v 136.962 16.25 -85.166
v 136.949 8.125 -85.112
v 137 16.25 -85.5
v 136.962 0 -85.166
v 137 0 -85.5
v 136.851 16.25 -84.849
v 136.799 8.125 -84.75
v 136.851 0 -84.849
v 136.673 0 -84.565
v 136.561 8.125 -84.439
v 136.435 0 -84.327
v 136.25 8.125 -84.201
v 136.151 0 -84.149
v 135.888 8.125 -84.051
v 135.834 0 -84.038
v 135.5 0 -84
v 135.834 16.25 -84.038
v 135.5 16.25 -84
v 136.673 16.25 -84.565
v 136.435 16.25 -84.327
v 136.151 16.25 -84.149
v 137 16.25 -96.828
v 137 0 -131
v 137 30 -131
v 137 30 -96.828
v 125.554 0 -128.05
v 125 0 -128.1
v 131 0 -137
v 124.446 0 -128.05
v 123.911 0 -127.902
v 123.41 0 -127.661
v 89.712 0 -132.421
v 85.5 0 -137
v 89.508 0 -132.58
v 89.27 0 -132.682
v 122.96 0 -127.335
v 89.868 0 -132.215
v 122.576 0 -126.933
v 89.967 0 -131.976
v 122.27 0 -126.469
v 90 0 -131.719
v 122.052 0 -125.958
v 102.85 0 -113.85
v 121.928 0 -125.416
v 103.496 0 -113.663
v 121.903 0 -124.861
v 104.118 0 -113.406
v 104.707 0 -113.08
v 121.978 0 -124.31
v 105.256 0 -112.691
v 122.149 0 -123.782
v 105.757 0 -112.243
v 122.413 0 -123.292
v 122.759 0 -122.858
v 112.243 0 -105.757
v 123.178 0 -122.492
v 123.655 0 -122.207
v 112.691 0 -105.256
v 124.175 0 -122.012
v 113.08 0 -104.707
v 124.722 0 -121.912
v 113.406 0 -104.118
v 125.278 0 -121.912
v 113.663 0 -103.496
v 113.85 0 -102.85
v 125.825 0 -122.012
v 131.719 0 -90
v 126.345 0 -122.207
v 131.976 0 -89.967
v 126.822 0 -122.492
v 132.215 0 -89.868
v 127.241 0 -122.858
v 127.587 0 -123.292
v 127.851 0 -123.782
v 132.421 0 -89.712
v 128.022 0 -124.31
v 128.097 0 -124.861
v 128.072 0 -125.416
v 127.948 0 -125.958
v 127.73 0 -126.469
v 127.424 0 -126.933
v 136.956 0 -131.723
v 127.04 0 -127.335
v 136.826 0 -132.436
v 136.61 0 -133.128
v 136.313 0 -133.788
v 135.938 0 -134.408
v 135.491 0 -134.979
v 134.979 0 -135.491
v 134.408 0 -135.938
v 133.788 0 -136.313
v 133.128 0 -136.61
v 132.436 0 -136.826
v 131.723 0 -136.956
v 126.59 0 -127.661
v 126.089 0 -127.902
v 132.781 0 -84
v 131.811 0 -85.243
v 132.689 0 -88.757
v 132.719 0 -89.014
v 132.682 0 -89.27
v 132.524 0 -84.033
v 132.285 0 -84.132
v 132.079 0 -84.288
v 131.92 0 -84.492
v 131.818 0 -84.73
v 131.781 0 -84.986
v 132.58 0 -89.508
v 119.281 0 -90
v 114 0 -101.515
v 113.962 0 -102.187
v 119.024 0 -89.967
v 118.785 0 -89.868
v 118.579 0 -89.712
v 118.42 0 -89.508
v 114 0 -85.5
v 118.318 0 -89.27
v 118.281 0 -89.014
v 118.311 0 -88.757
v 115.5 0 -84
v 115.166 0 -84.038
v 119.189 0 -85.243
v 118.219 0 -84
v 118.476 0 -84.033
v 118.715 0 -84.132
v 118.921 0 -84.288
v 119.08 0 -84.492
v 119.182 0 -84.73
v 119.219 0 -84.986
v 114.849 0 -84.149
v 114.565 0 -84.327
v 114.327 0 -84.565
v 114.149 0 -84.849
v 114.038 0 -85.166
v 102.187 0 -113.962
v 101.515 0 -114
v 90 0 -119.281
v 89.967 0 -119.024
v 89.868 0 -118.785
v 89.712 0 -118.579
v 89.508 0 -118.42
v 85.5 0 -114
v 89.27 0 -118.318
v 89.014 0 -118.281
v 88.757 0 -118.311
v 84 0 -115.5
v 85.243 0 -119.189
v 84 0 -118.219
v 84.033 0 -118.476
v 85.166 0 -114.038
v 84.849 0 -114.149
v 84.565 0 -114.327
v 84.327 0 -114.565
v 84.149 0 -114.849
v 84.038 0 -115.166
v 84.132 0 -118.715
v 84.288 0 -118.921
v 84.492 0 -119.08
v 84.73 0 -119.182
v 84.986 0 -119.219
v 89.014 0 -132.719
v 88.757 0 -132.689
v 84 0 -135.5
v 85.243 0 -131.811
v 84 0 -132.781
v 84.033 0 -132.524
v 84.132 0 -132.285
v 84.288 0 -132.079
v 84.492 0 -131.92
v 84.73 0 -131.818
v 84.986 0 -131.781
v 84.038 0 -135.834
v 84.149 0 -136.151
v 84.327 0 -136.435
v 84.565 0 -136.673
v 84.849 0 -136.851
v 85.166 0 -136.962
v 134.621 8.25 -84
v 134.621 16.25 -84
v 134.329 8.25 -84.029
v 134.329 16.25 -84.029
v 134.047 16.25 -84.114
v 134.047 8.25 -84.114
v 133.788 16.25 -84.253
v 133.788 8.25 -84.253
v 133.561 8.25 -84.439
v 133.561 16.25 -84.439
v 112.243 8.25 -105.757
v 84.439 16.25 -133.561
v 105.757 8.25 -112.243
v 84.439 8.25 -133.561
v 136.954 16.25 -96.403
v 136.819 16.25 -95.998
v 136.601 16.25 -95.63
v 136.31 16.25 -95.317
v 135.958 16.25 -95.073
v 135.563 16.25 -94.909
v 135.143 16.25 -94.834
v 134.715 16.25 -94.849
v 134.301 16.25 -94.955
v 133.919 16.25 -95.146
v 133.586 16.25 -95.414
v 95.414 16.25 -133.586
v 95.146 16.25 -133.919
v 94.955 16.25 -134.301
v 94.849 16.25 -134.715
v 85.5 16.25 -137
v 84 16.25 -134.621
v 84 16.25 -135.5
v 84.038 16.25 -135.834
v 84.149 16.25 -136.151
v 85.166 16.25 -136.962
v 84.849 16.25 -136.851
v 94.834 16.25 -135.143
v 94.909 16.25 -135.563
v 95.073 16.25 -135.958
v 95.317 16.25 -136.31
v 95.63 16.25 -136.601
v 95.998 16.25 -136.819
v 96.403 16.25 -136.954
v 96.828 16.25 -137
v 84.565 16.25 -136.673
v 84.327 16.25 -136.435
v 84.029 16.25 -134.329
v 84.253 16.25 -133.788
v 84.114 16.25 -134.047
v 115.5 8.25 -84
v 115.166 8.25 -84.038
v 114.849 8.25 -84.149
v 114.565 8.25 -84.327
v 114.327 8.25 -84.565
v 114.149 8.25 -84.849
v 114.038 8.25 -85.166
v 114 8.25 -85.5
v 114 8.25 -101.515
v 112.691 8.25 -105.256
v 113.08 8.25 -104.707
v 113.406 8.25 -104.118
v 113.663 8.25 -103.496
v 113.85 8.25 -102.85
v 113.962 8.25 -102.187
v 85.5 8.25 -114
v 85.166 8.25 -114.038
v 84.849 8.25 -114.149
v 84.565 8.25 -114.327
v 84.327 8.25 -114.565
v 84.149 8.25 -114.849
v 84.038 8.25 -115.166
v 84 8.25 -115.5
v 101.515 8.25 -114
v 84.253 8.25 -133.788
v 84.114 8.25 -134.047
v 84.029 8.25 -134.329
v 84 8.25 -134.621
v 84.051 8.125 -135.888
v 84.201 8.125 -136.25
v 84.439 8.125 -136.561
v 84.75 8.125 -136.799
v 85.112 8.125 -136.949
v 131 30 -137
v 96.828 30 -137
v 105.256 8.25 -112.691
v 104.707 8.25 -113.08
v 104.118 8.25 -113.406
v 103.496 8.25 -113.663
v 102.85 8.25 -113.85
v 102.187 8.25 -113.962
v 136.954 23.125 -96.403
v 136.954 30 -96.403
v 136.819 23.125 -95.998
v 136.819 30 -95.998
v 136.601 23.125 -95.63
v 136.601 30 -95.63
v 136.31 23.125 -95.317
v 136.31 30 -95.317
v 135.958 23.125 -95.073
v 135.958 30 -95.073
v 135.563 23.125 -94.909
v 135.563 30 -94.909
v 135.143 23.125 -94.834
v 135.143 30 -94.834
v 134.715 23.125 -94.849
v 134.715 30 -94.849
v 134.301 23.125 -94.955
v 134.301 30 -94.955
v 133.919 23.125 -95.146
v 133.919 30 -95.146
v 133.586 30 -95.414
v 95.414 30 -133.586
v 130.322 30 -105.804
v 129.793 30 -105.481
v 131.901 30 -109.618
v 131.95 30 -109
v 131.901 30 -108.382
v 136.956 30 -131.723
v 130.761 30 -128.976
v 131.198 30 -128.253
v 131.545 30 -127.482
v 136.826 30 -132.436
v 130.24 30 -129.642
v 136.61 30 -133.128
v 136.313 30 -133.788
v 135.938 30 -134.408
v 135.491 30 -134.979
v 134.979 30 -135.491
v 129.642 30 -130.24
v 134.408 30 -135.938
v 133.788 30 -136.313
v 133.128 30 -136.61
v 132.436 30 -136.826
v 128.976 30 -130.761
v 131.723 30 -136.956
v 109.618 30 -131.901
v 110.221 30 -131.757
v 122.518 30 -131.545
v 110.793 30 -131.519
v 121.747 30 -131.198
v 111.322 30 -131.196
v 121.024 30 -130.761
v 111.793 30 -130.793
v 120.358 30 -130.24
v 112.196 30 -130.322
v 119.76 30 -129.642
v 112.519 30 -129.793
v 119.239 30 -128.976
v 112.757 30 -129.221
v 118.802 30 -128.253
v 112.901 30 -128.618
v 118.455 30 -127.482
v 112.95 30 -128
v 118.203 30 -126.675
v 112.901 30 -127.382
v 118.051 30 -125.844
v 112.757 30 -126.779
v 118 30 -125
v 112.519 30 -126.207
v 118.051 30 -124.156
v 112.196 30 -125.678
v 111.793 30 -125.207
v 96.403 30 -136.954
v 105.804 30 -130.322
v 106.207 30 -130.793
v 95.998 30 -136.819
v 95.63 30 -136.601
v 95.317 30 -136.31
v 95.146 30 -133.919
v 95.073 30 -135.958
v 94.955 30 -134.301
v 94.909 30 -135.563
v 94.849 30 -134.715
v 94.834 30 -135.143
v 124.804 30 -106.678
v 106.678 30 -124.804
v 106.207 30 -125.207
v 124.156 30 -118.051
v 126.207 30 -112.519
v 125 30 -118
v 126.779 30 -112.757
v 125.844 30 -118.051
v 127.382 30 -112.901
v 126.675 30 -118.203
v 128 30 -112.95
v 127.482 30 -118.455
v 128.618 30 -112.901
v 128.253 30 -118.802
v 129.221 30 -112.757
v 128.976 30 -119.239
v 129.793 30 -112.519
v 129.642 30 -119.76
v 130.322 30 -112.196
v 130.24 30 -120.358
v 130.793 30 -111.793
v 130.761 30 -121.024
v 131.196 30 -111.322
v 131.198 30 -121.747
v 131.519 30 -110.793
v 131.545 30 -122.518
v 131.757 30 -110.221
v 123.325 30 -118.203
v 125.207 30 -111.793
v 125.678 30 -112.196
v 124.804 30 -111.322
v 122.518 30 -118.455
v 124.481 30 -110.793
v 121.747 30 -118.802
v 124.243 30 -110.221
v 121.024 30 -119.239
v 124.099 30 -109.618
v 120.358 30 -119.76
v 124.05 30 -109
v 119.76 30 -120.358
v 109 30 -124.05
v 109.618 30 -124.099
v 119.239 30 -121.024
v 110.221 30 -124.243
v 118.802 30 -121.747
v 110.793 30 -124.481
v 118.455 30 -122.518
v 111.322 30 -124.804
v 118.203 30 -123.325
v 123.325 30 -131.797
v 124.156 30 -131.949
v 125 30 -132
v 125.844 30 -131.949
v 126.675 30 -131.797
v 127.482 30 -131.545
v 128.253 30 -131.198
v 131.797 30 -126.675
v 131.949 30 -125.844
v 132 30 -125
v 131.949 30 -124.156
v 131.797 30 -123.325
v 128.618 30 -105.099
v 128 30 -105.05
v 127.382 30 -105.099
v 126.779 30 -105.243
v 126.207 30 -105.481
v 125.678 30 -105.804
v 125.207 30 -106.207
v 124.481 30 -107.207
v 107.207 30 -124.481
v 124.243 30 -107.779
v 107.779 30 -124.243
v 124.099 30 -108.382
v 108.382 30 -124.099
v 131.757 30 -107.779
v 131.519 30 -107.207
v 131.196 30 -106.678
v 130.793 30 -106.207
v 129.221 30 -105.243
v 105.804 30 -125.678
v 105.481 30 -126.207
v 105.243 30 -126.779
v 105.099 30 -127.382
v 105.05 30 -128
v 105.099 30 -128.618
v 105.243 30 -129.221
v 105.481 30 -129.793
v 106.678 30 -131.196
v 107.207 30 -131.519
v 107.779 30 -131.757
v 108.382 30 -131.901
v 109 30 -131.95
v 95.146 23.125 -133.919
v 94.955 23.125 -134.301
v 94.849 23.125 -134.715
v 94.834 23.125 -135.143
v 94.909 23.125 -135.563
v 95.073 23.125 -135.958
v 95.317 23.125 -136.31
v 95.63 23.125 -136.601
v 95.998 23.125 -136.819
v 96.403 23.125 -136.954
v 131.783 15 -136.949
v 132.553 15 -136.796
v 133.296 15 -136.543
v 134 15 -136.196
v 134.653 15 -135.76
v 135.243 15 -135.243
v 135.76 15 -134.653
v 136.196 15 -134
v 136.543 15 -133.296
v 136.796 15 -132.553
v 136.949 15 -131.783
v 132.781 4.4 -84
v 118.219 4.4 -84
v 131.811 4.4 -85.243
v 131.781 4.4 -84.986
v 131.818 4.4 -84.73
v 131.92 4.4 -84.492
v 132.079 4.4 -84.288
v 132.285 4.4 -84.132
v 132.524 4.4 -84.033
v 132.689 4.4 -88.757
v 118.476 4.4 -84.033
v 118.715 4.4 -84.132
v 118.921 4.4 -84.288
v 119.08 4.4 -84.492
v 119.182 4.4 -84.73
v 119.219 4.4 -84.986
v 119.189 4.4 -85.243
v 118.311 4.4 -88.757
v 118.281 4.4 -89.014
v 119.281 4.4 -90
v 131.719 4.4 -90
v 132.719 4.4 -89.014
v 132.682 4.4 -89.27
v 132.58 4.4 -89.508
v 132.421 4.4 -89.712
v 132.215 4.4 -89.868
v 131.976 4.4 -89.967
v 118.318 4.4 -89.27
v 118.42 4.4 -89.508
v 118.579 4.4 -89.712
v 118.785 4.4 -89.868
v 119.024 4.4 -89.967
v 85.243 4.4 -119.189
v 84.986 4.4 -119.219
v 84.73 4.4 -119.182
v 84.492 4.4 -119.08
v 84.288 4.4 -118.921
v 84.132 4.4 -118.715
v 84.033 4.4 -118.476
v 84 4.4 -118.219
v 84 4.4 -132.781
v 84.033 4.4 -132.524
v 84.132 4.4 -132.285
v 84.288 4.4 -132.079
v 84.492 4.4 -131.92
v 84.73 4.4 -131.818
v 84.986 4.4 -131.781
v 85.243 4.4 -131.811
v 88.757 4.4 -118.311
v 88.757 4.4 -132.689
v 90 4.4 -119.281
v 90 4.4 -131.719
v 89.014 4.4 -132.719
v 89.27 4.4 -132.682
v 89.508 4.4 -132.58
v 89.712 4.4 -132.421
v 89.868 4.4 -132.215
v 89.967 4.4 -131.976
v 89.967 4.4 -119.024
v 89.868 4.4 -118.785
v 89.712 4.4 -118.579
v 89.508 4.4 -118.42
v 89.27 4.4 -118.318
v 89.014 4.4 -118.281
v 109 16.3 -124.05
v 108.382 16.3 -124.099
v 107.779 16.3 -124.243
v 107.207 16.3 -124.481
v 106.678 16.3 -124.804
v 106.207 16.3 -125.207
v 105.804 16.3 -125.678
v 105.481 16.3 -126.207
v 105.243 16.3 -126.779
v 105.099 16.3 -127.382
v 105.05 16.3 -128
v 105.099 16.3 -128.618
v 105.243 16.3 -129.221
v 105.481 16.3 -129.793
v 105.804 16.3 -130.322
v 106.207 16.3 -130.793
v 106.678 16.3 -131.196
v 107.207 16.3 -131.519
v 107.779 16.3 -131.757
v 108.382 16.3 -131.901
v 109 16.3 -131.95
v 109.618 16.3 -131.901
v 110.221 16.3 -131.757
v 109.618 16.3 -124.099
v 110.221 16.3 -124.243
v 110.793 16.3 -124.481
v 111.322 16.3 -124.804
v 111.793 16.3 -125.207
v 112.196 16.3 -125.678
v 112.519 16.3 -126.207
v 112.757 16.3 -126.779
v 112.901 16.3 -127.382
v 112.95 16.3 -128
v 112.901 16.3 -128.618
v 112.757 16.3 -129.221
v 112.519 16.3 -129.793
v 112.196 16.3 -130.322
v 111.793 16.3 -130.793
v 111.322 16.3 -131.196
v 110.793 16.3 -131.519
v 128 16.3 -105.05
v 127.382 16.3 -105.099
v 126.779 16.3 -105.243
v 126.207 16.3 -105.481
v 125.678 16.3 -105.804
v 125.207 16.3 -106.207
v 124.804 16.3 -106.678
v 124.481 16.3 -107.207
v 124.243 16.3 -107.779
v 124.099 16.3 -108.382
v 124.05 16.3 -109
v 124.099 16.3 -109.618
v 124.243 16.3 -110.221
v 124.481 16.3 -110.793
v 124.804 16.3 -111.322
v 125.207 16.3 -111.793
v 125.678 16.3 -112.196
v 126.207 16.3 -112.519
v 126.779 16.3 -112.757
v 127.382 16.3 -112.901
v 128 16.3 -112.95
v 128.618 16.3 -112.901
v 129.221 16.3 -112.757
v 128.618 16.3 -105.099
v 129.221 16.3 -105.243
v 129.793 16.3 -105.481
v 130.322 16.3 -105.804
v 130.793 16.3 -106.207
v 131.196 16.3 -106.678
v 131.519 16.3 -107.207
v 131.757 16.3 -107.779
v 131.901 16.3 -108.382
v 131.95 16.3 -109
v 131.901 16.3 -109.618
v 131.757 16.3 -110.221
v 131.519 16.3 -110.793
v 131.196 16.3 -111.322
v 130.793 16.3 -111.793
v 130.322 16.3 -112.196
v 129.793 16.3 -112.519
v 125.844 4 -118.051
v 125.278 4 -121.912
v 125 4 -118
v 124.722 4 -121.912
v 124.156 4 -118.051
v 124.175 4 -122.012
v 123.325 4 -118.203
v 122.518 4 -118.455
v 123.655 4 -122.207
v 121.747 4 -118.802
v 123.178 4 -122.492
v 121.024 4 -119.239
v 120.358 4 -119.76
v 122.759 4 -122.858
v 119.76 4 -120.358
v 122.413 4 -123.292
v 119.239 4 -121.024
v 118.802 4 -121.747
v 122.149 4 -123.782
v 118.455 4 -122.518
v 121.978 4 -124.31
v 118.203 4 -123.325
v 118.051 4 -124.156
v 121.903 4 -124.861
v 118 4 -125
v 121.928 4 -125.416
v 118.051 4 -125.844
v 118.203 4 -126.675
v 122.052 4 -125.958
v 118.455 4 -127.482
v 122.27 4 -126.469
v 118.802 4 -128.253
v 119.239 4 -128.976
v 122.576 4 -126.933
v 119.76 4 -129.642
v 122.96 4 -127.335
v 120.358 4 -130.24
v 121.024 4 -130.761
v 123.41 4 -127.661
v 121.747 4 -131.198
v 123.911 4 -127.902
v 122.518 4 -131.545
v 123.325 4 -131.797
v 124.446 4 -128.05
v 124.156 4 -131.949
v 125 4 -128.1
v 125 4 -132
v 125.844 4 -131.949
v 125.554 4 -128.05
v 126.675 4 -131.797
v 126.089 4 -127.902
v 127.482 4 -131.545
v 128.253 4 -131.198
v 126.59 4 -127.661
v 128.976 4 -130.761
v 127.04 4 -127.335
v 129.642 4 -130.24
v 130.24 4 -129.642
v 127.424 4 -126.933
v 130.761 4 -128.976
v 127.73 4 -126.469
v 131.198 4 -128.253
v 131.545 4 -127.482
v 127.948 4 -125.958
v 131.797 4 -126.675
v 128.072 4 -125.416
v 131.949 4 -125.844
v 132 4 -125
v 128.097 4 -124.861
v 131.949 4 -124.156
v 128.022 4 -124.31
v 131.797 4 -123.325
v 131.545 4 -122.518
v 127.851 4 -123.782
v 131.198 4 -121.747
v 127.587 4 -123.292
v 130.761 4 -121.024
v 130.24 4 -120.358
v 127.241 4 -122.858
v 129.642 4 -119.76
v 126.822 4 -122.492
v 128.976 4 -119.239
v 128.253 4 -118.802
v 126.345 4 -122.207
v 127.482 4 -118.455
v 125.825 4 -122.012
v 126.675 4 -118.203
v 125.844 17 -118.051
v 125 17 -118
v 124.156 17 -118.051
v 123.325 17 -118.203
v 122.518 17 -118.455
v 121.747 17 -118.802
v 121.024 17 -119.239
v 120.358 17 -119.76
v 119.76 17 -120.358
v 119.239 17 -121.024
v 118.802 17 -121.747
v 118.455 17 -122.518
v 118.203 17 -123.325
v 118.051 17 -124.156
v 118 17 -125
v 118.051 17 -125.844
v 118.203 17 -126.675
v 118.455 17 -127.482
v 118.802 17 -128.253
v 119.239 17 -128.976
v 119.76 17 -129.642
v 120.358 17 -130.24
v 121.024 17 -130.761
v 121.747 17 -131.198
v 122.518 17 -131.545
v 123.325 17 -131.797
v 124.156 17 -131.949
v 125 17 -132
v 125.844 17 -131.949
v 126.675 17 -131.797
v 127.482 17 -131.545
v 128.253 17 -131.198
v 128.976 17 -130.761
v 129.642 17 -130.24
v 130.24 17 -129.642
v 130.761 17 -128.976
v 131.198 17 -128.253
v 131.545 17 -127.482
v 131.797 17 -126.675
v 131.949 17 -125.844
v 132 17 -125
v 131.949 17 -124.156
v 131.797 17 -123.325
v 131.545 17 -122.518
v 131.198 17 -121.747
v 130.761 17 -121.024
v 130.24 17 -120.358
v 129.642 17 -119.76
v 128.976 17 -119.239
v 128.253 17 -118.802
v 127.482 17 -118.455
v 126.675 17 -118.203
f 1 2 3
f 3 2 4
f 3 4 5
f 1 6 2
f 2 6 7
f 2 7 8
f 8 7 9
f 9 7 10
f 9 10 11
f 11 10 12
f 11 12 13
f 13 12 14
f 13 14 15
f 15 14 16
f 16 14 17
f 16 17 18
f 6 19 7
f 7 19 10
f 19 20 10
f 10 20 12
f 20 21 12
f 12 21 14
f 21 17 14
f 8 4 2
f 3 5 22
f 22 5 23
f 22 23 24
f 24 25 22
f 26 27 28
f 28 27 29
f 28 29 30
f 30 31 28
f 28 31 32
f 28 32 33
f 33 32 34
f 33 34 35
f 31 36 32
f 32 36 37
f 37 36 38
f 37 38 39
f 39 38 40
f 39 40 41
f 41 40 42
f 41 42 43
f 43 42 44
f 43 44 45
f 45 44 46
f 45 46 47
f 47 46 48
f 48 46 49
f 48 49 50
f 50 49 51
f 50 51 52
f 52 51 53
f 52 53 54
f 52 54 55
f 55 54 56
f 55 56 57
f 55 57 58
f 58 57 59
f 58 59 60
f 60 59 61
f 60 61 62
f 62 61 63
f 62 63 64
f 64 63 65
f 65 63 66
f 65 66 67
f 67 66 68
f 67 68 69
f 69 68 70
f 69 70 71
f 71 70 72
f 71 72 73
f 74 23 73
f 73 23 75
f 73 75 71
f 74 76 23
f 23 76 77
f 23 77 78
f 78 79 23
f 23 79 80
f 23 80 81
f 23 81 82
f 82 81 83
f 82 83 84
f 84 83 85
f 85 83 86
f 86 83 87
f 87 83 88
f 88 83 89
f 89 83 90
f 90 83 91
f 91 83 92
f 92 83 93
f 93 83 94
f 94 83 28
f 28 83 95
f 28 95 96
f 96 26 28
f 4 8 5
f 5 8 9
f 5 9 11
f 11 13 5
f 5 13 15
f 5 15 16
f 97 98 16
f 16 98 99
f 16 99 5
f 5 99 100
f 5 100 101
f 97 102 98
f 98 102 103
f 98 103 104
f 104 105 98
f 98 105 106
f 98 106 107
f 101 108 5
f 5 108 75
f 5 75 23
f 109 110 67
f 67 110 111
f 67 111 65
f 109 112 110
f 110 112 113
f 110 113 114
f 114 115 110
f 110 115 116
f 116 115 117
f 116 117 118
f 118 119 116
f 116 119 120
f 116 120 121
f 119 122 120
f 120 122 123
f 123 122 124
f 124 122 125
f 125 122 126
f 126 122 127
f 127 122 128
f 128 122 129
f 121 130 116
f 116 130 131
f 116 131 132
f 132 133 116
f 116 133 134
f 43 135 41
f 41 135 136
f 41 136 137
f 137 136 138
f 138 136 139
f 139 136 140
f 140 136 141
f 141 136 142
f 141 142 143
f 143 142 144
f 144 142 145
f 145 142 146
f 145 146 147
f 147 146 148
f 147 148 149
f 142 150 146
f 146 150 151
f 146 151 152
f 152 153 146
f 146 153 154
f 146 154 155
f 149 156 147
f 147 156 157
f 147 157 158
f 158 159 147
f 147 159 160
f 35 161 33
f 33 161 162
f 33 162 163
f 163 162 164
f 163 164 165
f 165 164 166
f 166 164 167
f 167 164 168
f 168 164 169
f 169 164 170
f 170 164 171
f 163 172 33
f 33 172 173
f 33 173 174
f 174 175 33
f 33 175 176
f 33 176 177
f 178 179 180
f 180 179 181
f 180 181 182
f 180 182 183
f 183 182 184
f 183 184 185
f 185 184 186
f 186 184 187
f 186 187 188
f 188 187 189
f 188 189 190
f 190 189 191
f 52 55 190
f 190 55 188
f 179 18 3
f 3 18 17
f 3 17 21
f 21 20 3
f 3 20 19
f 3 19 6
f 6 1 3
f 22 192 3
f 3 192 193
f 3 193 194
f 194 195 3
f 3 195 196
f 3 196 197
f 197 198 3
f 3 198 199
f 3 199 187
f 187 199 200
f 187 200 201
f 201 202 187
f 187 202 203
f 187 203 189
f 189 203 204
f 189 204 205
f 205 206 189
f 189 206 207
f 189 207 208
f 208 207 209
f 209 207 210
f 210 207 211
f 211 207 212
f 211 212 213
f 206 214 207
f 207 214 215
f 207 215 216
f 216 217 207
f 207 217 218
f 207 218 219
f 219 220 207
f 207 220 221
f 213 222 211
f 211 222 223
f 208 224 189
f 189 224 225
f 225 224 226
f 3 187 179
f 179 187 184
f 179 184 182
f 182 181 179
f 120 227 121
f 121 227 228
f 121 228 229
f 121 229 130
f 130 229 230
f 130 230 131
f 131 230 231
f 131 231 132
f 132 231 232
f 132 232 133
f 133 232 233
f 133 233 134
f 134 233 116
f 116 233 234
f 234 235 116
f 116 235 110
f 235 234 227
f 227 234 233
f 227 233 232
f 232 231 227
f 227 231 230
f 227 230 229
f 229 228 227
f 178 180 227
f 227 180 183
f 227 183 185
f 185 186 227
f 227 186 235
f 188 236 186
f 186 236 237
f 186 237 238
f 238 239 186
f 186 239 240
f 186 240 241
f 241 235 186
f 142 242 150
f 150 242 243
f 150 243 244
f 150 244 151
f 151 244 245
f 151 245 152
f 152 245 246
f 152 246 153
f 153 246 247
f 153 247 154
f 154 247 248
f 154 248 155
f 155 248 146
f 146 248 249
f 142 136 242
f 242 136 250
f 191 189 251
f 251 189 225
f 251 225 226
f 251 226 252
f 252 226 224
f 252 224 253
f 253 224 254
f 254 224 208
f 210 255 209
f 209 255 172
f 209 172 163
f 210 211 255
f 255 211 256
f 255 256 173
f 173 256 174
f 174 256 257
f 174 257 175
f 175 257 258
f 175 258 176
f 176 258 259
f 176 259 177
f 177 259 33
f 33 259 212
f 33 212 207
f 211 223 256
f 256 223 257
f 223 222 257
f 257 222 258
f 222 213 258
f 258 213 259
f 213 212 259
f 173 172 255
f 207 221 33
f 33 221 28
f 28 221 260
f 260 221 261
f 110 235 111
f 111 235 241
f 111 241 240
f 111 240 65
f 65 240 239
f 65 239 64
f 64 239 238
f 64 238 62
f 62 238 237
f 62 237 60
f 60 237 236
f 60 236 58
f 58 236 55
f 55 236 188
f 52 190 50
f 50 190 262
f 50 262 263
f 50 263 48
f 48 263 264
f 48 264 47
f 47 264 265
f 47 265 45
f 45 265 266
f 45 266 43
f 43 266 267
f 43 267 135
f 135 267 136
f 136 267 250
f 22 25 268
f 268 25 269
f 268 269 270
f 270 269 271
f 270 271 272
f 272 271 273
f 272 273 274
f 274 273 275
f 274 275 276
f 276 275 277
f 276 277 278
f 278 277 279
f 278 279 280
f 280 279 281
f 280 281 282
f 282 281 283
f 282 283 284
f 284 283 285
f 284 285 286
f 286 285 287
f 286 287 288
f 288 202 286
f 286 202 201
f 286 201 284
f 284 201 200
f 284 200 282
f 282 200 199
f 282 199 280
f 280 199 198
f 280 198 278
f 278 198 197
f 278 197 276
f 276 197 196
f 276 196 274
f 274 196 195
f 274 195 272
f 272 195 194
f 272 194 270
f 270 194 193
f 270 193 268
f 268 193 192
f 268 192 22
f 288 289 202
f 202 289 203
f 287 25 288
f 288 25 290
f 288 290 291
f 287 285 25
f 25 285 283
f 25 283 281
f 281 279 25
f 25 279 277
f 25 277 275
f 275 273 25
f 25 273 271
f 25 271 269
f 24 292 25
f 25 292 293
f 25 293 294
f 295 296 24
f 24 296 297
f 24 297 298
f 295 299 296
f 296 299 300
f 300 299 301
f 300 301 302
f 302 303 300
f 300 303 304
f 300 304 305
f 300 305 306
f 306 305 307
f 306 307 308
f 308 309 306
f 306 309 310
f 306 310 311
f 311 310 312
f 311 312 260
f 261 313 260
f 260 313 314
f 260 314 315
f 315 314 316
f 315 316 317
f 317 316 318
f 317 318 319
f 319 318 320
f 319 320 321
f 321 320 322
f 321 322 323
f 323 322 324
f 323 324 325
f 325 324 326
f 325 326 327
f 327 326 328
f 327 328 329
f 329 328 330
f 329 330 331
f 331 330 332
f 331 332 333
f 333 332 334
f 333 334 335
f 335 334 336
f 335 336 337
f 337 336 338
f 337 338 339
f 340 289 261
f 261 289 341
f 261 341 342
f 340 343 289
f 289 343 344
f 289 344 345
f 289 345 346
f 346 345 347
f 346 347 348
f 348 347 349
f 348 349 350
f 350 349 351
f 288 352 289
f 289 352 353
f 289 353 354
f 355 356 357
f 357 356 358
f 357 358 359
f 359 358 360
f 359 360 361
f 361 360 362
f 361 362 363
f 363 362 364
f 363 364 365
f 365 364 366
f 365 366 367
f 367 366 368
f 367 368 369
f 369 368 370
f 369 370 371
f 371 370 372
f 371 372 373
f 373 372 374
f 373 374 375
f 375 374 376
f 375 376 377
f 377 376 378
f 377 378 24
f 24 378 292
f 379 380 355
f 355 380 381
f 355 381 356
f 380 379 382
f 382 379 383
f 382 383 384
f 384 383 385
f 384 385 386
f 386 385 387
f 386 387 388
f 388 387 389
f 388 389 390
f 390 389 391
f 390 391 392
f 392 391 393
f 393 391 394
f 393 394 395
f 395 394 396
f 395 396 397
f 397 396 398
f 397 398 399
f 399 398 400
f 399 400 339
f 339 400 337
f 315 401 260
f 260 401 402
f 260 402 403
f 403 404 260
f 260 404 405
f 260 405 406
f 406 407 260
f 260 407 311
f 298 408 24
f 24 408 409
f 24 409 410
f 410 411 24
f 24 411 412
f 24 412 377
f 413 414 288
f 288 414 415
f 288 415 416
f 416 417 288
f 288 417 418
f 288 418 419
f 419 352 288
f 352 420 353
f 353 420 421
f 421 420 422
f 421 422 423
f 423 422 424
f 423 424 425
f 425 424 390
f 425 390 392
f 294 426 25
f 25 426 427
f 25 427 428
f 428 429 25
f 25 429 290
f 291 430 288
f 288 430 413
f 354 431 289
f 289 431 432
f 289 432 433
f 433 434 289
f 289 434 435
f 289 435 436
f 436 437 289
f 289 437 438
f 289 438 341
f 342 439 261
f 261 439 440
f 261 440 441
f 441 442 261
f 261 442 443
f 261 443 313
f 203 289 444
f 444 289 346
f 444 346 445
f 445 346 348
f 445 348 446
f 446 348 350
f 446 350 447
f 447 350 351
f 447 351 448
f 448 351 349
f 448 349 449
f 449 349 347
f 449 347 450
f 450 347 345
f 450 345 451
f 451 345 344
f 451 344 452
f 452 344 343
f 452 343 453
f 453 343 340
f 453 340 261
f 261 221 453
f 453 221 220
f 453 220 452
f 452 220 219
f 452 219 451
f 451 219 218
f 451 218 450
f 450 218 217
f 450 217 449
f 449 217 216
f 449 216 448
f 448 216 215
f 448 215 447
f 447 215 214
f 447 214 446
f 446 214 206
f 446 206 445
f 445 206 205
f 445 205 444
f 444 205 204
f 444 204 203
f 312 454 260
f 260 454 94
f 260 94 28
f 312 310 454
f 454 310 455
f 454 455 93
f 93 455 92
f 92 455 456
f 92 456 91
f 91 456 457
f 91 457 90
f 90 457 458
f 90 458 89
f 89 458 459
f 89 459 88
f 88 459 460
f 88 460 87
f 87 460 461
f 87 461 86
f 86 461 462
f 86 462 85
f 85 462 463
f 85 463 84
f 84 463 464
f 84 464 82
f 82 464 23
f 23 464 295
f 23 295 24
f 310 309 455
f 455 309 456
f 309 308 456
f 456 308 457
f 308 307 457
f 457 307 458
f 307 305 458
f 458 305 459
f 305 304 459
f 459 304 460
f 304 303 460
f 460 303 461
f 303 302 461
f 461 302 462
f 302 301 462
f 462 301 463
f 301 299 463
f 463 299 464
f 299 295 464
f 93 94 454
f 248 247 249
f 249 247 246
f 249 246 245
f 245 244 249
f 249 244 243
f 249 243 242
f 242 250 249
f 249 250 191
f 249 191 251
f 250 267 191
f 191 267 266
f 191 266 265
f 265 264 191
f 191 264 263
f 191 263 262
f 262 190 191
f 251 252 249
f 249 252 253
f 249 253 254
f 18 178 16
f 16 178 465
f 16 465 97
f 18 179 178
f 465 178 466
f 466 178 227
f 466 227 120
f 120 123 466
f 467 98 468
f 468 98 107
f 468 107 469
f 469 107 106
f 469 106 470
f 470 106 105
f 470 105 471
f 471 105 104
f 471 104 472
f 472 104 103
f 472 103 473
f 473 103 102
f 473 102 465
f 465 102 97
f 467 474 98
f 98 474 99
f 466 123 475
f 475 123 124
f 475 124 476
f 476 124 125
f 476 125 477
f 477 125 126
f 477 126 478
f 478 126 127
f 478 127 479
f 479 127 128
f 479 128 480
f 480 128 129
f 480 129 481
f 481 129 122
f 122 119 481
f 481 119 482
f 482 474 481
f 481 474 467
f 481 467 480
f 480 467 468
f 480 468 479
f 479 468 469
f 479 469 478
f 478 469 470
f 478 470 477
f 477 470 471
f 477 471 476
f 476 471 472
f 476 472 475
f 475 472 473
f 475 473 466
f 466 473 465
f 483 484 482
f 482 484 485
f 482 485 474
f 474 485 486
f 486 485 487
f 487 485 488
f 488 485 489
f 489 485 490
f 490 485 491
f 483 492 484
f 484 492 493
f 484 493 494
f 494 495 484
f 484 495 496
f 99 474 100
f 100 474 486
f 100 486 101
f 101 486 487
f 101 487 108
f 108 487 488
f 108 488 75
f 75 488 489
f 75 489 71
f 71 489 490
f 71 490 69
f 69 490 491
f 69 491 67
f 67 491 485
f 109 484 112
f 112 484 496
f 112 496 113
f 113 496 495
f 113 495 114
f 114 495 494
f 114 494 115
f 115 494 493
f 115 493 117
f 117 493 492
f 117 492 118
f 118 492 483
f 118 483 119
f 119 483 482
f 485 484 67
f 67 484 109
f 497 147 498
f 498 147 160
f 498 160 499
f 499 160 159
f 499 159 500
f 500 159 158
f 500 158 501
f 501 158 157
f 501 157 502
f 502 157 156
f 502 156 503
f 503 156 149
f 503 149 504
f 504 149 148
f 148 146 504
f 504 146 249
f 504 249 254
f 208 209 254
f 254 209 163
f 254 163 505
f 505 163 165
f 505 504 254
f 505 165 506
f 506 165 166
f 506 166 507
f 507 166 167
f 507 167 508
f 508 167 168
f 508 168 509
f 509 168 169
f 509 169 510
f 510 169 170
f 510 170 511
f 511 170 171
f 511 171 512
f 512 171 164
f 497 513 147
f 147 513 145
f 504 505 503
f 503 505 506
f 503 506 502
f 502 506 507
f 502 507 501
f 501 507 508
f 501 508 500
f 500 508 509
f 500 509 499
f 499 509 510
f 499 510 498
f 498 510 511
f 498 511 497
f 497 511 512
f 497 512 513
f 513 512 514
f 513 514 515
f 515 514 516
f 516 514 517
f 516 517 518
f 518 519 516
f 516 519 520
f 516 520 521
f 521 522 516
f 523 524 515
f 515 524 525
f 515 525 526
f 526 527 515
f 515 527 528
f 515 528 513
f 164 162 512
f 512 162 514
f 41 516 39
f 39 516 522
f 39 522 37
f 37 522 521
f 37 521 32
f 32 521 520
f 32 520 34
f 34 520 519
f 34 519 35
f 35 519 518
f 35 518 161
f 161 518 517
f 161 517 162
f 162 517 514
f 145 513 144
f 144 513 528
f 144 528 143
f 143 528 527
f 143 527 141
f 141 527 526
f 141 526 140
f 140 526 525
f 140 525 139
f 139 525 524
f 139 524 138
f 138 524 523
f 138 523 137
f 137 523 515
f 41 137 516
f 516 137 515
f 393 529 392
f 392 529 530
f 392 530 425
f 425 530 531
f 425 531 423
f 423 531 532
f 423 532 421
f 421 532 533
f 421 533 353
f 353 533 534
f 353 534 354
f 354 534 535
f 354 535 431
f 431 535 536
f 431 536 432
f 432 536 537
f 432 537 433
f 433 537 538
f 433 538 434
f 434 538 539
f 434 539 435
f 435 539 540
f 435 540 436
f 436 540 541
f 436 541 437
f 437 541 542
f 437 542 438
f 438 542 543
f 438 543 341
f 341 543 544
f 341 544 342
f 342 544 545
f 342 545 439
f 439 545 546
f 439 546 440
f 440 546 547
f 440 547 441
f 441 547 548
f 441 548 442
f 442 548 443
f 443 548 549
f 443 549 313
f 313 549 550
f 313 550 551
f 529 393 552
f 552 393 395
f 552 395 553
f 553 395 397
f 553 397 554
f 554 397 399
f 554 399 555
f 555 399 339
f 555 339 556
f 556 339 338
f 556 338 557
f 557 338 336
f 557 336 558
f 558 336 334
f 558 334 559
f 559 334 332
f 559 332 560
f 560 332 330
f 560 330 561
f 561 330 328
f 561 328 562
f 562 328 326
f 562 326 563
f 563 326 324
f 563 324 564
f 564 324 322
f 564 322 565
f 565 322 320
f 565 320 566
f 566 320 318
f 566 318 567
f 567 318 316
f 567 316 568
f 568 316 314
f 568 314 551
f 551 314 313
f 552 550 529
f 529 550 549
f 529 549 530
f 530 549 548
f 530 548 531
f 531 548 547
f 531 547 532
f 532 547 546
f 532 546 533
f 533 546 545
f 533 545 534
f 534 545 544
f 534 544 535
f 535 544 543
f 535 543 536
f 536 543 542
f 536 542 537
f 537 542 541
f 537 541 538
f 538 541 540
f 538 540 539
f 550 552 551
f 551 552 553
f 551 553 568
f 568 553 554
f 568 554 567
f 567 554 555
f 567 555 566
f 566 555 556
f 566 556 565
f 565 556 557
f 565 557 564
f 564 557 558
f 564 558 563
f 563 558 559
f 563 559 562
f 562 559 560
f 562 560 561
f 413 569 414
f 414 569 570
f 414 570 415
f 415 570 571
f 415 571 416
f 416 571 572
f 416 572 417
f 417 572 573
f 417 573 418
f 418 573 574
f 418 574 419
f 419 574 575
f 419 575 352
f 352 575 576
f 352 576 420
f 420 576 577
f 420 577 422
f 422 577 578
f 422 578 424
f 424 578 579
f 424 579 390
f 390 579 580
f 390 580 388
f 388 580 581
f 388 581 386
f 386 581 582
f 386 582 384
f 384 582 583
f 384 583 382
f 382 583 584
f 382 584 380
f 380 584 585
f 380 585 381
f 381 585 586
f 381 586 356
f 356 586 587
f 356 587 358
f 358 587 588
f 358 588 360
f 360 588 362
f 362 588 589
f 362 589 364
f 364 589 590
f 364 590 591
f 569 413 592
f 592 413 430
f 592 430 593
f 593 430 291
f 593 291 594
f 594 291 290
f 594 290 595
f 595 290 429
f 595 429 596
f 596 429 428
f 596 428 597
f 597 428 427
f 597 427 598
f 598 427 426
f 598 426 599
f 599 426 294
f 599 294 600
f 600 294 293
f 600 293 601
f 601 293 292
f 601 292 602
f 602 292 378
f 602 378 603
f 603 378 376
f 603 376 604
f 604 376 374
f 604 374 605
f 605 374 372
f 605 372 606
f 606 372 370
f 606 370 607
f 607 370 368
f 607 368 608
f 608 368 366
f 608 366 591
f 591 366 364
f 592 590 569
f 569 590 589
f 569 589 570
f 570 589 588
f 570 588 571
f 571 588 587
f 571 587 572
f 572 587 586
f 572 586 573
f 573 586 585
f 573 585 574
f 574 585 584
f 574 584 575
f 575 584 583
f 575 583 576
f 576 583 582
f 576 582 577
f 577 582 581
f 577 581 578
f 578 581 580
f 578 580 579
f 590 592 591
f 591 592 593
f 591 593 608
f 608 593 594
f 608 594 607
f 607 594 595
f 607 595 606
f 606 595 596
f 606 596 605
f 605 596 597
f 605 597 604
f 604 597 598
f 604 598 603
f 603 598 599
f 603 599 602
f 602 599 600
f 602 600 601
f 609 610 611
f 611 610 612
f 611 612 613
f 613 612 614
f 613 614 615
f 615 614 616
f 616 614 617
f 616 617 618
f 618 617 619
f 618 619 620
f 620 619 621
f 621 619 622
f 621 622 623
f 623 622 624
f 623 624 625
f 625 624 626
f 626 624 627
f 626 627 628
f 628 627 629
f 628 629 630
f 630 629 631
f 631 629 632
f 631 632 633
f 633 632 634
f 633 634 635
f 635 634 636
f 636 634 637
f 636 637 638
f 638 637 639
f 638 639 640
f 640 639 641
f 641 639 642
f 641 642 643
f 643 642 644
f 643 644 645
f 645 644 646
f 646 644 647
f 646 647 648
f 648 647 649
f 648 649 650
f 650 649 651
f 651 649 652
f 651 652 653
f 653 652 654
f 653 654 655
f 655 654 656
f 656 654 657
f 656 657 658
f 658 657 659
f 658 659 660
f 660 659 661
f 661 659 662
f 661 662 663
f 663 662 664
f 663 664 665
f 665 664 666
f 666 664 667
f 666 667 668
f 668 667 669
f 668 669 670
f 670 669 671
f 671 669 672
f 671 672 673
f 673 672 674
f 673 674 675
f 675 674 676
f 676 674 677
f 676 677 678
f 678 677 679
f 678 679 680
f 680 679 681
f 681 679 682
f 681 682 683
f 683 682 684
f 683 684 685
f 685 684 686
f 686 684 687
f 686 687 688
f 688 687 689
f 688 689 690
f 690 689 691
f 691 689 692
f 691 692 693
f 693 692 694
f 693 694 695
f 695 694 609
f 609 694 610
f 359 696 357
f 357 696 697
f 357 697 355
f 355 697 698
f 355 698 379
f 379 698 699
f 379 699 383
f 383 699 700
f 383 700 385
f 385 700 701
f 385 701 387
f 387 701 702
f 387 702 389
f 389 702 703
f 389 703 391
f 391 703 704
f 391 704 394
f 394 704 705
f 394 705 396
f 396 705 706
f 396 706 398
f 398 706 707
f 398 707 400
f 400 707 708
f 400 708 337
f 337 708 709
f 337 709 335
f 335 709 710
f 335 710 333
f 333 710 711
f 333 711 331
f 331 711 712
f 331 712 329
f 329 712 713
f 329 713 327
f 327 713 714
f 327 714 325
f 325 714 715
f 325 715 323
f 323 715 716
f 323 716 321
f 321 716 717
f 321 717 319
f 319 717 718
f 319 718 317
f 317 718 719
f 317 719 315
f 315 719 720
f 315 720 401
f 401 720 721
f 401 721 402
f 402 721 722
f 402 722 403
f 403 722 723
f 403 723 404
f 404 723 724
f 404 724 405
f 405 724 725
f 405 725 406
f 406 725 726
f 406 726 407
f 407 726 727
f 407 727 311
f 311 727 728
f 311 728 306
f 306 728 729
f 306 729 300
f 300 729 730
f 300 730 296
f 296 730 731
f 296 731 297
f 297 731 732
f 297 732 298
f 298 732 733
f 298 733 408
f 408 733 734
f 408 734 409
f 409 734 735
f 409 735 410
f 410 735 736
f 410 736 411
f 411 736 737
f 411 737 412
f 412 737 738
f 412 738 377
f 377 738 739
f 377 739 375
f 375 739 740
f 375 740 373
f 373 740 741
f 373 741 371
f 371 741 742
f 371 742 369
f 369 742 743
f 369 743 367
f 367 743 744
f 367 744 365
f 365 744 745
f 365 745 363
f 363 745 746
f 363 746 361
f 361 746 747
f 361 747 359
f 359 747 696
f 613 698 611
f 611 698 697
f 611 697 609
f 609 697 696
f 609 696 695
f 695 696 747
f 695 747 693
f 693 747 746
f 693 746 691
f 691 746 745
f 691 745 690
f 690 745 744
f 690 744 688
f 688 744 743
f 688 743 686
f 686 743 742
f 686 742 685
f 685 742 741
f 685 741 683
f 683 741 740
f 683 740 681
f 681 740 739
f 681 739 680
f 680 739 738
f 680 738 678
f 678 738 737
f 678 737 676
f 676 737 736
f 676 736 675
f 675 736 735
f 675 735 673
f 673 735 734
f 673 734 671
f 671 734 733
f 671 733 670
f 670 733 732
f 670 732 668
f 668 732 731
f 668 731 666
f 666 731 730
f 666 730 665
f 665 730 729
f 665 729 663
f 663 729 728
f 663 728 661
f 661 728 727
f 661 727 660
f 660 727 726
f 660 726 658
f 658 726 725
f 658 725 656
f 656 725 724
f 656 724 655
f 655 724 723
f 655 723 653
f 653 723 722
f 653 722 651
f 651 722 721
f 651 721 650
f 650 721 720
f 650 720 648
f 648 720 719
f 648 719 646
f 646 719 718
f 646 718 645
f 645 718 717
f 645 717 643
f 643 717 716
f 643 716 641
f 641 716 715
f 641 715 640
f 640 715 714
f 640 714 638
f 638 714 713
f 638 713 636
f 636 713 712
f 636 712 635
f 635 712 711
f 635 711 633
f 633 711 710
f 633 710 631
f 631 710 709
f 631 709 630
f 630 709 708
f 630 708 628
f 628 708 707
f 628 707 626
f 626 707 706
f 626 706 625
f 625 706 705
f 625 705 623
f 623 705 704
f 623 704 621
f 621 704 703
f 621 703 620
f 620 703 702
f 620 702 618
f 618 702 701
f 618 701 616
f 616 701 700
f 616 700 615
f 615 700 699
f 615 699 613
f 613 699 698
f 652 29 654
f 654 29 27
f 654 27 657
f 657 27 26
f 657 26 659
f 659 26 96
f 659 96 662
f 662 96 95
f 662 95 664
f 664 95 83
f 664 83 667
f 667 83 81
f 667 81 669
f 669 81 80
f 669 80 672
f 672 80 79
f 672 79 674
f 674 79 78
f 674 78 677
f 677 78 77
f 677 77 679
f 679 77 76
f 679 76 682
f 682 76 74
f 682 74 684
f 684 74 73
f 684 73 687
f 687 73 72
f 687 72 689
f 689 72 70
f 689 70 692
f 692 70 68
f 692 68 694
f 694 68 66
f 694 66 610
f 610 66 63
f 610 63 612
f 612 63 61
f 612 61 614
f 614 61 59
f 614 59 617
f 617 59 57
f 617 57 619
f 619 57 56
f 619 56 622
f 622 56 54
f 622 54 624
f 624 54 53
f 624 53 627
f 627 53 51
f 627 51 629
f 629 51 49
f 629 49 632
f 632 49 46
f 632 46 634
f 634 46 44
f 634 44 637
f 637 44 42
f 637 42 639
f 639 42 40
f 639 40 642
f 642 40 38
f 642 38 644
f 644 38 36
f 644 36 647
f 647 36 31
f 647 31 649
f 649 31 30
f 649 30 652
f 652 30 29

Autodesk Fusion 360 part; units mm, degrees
sketch "Sketch1" plane through (0, 0, 0) normal (0, 1, 0) x (1, 0, 0)
  line L0 (125, 125) -> (-125, 125) construction
  line L1 (-125, 125) -> (-125, -125) construction
  line L2 (-125, -125) -> (125, -125) construction
  line L3 (125, -125) -> (125, 125) construction
  line L4 (125, 125) -> (-125, -125) construction
  line L5 (-125, 125) -> (125, -125) construction
  line L6 (75, 112.1152) -> (-75, 112.1152) construction
  line L7 (-75, 112.1152) -> (-75, 91.9152) construction
  line L8 (-75, 91.9152) -> (75, 91.9152) construction
  line L9 (75, 91.9152) -> (75, 112.1152) construction
  line L10 (75, 112.1152) -> (-75, 91.9152) construction
  line L11 (-75, 112.1152) -> (75, 91.9152) construction
  line L12 (137, 137) -> (92, 137)
  line L13 (92, 137) -> (137, 92)
  line L14 (137, 92) -> (137, 137)
  line L15 (125, 125) -> (137, 137) construction
  line L16 (128, 128) -> (109, 128) construction
  line L17 (109, 128) -> (128, 109) construction
  line L18 (128, 109) -> (128, 128) construction
  line L19 (92, 137) -> (84, 137)
  line L20 (84, 137) -> (84, 114)
  line L21 (84, 114) -> (104, 114)
  line L22 (104, 114) -> (114, 104)
  line L23 (114, 104) -> (114, 84)
  line L24 (114, 84) -> (137, 84)
  line L25 (137, 84) -> (137, 92)
  line L26 (84, 138) -> (-84, 138)
  line L27 (-84, 138) -> (-84, 113)
  line L28 (-84, 113) -> (84, 113)
  line L29 (84, 113) -> (84, 138)
  line L30 (84, 138) -> (-84, 113) construction
  line L31 (-84, 138) -> (84, 113) construction
  point P0 (0, 102.0152)
  point P1 (0, 125.5)
  dimension "d4" = 250
  dimension "d5" = 250
  dimension "d6" = 150
  dimension "d7" = 20.2
  dimension "d8" = 12
  dimension "d9" = 12
  dimension "d10" = 45
  dimension "d11" = 16
  dimension "d12" = 3
  dimension "d13" = 8
  dimension "d14" = 23
  dimension "d15" = 20
  dimension "d16" = 25
  dimension "d17" = 1
ref_plane "WorkPlane1" through (0, 8, 0) normal (0, 1, 0) x (0, 0, 1)
extrude "Extrude2" add sketch "Sketch1" along normal blind 16.25 contours L13 L19 L20 L21 L22 L23 L24 L25 L29
extrude "Extrude3" add sketch "Sketch1" along normal blind 30 contours L12 L13 L14
sketch "Sketch2" plane through (0, 30, 0) normal (0, 1, 0) x (-1, 0, 0)
  line L0 (-137, -92) -> (-137, -137)
  line L1 (-137, -137) -> (-92, -137)
  line L2 (-92, -137) -> (-137, -92)
  point P0 (-109, -128)
  point P1 (-128, -109)
sketch "Sketch4" plane through (0, 30, 0) normal (0, 1, 0) x (-1, 0, 0)
  line L0 (-137, -92) -> (-137, -137)
  line L1 (-137, -137) -> (-92, -137)
  line L2 (-92, -137) -> (-137, -92)
  point P0 (-128, -128)
  point P1 (-125, -125)
hole "Hole2" at (125, 30, -125) direction (0, -1, 0) diameter 6.2 end through all counterbore diameter 14 counterbore depth 26
sketch "Sketch5" plane through (0, 30, 0) normal (0, 1, 0) x (-1, 0, 0)
  line L0 (-137, -92) -> (-137, -137)
  line L1 (-137, -137) -> (-92, -137)
  line L2 (-92, -137) -> (-137, -92)
  circle A0 centre (-125, -125) radius 7
  point P0 (-109, -128)
  point P1 (-128, -109)
hole "Hole3" at (109, 30, -128) at (128, 30, -109) direction (0, -1, 0) diameter 7.9 depth 13.7 tip angle 180
sketch "Sketch9" plane through (0, 0, 0) normal (0, -1, 0) x (1, 0, 0)
  line L0 (84, -137) -> (137, -137)
  line L1 (137, -137) -> (137, -84)
  line L2 (137, -84) -> (114, -84)
  line L3 (114, -84) -> (114, -104)
  line L4 (114, -104) -> (104, -114)
  line L5 (104, -114) -> (84, -114)
  line L6 (84, -114) -> (84, -137)
  line L7 (84, -119.5) -> (90, -118)
  line L8 (90, -118) -> (90, -133)
  line L9 (90, -133) -> (84, -131.5)
  line L10 (90, -125.5) -> (84, -125.5) construction
  line L11 (84, -119.5) -> (90, -133) construction
  line L12 (84, -131.5) -> (90, -118) construction
  circle A0 centre (125, -125) radius 3.1
  dimension "d51" = 12
  dimension "d52" = 15
  dimension "d53" = 6
extrude "Extrude7" cut sketch "Sketch9" against normal blind 4.4 contours L6 L7 L8 L9
fillet "Fillet1" radius 1 2 edges at (84, 2.2, -119.5) (84, 2.2, -131.5)
fillet "Fillet1" radius 1 2 edges at (90, 2.2, -118) (90, 2.2, -133)
ref_plane "WorkPlane2" through (137, 15, -137) normal (0.7071, 0, 0.7071) x (0, 1, 0)
mirror "Mirror2" about plane through (137, 15, -137) normal (0.7071, 0, 0.7071) of "Extrude7", "Fillet1"
sketch "Sketch10" plane through (0, 16.25, 0) normal (0, 1, 0) x (-1, 0, 0)
  line L0 (-92, -137) -> (-84, -137)
  line L1 (-84, -137) -> (-84, -114)
  line L2 (-84, -114) -> (-104, -114)
  line L3 (-104, -114) -> (-114, -104)
  line L4 (-114, -104) -> (-114, -84)
  line L5 (-114, -84) -> (-137, -84)
  line L6 (-137, -84) -> (-137, -92)
  line L7 (-137, -92) -> (-92, -137)
  line L8 (-84, -134) -> (-134, -84)
extrude "Extrude8" cut sketch "Sketch10" against normal blind 8 contours L1 L2 L8 | L4 L5 L8
fillet "Fillet2" radius 6 1 edges at (137, 15, -137)
fillet "Fillet3" radius 2 2 edges at (92, 23.125, -137) (137, 23.125, -92)
fillet "Fillet4" radius 6 2 edges at (104, 4.125, -114) (114, 4.125, -104)
fillet "Fillet5" radius 1.5 6 edges at (84, 8.125, -137) (84, 12.25, -134) (84, 4.125, -114) (114, 4.125, -84) (134, 12.25, -84) (137, 8.125, -84)
